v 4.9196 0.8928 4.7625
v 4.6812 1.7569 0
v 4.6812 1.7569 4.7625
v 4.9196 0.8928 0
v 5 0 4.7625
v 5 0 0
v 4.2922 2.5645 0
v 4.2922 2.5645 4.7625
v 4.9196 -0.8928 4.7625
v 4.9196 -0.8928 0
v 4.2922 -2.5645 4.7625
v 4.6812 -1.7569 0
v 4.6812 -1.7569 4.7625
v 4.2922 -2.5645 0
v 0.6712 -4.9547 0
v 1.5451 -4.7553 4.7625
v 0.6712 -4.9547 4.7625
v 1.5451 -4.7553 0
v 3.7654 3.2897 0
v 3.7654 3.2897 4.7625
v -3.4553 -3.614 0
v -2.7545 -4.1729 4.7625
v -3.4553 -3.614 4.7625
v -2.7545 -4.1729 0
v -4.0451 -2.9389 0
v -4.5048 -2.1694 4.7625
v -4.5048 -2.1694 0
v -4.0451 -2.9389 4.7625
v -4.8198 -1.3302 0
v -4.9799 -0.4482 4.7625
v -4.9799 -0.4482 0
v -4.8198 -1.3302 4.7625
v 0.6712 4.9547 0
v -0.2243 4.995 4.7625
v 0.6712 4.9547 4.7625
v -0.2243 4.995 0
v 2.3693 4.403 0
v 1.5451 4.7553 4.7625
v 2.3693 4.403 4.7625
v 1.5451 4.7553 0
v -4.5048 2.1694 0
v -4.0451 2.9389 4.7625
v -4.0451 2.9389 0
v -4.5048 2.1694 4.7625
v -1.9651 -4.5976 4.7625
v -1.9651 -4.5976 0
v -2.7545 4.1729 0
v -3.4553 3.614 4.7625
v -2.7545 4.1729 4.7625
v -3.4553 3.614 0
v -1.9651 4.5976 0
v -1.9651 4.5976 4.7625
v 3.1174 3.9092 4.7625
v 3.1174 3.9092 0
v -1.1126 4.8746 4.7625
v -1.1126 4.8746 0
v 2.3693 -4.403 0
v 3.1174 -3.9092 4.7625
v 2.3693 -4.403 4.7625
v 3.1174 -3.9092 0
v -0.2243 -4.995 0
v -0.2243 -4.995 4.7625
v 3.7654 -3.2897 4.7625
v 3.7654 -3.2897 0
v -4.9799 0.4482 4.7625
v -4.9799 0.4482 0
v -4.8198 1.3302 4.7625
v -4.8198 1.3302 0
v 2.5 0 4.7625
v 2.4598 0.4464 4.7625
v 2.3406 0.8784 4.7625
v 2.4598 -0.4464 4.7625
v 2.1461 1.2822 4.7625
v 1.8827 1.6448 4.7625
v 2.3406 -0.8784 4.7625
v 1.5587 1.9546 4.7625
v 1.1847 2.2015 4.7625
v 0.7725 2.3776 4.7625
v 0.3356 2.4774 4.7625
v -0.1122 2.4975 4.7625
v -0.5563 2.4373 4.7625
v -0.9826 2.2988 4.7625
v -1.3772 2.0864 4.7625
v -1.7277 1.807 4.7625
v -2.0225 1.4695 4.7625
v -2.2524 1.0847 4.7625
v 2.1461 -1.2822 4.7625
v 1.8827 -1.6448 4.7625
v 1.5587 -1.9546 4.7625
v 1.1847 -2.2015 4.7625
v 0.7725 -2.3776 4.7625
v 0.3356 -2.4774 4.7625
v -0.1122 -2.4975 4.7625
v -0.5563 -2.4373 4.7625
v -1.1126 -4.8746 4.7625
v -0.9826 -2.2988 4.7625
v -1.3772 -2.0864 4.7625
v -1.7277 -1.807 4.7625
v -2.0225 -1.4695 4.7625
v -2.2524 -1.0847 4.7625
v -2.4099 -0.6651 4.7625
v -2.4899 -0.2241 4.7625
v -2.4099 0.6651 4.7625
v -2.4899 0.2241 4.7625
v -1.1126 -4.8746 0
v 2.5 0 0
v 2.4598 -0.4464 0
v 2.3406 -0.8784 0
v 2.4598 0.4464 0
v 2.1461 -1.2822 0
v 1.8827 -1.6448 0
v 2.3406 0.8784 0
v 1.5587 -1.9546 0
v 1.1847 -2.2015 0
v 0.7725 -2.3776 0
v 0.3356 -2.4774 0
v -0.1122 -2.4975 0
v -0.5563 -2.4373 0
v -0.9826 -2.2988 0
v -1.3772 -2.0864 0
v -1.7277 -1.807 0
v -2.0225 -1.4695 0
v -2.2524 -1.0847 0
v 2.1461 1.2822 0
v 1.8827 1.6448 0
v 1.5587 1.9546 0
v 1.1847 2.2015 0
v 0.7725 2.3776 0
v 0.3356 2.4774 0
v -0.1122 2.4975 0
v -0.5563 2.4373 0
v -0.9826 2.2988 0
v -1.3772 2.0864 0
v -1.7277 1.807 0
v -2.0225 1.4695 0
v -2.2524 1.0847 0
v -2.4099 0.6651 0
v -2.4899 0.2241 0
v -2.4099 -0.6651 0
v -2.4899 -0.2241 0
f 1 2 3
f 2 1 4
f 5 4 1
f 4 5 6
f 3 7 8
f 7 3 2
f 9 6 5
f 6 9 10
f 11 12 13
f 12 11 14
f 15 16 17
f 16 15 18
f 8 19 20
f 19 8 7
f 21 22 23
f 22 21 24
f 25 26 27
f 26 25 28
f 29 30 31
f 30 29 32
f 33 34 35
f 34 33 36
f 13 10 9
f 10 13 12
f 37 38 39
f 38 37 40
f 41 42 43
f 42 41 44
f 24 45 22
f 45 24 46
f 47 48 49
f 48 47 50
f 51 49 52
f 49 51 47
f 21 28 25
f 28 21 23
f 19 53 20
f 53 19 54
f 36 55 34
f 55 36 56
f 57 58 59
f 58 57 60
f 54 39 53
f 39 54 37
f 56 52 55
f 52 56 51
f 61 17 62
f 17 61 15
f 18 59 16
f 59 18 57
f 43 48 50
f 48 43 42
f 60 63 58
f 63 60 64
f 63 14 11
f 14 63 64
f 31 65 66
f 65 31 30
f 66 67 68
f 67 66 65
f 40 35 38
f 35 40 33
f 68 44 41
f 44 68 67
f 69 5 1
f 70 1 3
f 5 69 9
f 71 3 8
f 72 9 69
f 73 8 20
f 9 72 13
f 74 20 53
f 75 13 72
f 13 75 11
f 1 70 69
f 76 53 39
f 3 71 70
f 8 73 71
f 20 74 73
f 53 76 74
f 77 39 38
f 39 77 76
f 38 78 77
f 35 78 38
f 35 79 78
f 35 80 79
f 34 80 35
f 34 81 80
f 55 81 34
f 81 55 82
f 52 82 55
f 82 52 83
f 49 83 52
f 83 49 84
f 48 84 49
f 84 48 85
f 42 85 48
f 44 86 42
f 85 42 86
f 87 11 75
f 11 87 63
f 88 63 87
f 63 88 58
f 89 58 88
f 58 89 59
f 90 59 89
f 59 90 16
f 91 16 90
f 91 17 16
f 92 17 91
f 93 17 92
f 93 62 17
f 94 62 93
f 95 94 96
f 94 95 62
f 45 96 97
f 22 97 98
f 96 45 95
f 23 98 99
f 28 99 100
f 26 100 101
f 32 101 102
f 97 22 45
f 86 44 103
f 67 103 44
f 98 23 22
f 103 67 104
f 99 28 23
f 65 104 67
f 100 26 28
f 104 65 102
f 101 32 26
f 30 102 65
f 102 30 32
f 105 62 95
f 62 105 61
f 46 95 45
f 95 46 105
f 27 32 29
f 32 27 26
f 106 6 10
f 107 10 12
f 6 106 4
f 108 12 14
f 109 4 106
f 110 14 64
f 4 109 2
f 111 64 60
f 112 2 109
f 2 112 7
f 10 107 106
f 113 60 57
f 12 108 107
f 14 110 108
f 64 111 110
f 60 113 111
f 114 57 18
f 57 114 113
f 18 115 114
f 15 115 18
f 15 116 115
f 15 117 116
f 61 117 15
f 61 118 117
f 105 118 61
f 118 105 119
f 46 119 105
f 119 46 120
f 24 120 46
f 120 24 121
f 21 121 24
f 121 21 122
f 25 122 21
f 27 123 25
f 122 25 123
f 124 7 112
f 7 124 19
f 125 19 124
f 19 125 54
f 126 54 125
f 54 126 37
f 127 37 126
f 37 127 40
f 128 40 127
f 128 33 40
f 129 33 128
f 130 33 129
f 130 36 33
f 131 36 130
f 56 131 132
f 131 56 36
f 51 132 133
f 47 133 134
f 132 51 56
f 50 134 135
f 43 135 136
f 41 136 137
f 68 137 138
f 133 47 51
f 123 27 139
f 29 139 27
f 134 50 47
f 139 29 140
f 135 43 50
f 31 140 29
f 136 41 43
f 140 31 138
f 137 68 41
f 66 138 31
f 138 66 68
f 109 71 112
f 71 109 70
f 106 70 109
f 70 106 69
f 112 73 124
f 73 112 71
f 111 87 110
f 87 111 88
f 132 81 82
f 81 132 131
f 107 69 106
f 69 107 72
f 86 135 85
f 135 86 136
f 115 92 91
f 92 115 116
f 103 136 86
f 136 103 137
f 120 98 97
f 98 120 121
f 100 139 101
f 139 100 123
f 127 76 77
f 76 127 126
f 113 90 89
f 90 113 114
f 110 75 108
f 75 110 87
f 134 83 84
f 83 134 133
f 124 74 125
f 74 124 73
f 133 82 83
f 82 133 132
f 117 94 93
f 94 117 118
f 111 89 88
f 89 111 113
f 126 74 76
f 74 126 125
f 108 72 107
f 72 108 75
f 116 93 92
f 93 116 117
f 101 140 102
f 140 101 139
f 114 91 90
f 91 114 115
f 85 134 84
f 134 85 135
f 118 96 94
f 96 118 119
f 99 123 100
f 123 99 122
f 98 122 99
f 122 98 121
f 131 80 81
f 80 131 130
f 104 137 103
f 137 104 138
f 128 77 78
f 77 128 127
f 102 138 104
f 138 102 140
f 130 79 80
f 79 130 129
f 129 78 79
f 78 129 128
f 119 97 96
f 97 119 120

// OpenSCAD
$fn = 35;

difference() {
  cylinder(h=3/16*25.4, d=10);
  cylinder(h=3/16*25.4+0.1, d=5);
}
